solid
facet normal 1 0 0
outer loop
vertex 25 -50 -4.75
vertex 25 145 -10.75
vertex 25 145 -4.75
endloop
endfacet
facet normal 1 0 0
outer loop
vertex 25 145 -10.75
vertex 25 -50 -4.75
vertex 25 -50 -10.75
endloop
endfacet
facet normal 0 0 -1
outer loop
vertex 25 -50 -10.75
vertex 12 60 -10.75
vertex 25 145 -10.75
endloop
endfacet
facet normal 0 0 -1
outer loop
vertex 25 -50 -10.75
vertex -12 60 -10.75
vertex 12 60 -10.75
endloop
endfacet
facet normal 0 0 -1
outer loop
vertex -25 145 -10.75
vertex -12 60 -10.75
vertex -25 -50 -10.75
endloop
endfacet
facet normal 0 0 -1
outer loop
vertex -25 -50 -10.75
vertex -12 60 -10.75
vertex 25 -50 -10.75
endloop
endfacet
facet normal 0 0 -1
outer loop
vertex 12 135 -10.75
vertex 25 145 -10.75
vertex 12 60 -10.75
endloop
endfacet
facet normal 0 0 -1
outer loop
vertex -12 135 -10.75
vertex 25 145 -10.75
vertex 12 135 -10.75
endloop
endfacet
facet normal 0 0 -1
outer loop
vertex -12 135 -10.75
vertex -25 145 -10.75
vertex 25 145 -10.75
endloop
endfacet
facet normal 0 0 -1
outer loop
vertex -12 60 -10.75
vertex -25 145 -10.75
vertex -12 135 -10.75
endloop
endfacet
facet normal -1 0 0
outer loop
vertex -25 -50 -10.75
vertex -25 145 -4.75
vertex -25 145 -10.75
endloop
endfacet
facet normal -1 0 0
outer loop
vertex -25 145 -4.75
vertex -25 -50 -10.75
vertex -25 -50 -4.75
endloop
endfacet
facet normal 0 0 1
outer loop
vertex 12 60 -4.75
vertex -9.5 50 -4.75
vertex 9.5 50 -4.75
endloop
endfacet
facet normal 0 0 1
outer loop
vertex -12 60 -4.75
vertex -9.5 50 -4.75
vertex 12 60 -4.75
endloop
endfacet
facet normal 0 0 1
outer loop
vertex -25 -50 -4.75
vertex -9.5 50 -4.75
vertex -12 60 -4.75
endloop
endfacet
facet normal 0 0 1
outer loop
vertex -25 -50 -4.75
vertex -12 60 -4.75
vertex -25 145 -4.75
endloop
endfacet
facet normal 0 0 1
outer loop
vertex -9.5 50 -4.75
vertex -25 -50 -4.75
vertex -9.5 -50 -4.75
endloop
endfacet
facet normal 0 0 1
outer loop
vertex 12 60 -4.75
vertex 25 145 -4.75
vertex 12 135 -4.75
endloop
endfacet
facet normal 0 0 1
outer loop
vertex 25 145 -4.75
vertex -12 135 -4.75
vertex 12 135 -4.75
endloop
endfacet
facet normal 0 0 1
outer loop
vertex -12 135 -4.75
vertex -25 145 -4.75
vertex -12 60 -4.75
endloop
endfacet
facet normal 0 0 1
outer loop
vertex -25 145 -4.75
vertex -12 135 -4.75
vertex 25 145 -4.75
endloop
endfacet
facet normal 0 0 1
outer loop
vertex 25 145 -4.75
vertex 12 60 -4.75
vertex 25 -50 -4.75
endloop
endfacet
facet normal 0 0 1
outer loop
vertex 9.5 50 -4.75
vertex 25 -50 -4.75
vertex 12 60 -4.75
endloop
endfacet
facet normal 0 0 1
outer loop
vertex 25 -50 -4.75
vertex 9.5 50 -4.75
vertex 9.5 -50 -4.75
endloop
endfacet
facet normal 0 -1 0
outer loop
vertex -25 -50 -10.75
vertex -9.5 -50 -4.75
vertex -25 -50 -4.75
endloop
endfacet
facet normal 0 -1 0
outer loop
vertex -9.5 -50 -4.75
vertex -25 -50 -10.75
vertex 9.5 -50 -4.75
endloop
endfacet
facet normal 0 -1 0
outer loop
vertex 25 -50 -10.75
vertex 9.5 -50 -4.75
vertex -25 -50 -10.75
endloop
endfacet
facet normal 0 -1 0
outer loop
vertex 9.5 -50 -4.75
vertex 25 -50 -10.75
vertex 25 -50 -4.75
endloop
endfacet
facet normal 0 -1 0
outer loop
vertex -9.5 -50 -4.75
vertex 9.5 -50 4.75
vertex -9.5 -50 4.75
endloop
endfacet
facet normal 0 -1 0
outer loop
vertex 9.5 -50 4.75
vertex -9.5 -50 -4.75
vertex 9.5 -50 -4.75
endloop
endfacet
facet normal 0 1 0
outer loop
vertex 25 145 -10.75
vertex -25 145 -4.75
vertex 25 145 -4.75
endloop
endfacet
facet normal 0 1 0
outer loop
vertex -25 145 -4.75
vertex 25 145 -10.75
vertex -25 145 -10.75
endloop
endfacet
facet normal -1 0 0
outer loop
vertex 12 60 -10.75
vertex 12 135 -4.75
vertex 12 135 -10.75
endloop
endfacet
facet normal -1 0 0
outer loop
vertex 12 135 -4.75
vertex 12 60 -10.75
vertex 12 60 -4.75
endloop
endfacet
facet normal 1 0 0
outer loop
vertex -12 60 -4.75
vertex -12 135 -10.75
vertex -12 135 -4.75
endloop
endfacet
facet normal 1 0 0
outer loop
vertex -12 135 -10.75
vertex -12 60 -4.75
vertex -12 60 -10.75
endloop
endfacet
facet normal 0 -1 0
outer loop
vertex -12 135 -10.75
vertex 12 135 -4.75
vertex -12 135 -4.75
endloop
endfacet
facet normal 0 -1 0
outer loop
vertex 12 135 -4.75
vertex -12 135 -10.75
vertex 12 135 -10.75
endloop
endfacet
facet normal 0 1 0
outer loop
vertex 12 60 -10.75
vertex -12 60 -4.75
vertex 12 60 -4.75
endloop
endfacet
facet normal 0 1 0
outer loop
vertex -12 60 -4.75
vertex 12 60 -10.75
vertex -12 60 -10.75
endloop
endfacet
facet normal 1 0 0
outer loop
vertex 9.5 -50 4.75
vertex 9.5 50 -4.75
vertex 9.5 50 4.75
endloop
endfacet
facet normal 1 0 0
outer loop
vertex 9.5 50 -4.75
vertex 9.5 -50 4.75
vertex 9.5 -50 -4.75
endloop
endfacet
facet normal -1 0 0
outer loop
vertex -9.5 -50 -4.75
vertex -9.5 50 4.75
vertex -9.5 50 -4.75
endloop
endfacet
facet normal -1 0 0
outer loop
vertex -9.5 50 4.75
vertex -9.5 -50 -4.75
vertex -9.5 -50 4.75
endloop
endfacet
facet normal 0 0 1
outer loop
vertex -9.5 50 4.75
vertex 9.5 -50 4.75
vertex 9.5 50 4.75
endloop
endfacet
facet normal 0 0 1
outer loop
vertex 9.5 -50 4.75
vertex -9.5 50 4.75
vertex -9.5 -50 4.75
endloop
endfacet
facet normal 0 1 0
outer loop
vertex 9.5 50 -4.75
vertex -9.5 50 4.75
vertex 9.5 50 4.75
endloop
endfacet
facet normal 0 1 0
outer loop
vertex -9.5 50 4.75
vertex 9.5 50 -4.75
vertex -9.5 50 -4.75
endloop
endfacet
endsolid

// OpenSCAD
// The width (in mm) of the miter slot that the jig will rest within.
$miterSlotWidth = 19; // [12:20]

// The depth (in mm) of the miter slot that the jig will rest within.
$miterSlotDepth = 9.5; // [6:0.5:19]

// The length (in mm) of the jig that rests in the miter slot.
$miterSlotLength = 100; // [25:25:150]

// The cutout size (in mm) that the jig is intended to help create.
$jigCutoutLength = 75; // [25:10:300]

// The width of the cutout (in mm) the jig will help create
$jigCutoutWidth = 24; // [12:0.5:25]

// The width (in mm) of the entire Jig, the wider the easier it is to rest the router on.
$jigWidth = 50; // [50:25:150]

// The thickness (in mm) of the jig.
$jigThickness = 6; // [6:25]

{}

rotate([0,180,0])    
group(){
    // Miter slot piece
    color("blue")
    cube([$miterSlotWidth, $miterSlotLength, $miterSlotDepth], center = true);

    difference(){
        $oal = $miterSlotLength + $jigCutoutLength + 20;
        
        // The top part of the jig where the router will rest.
        color("green")
        translate([0,($oal-$miterSlotLength)/2,($jigThickness+$miterSlotDepth)/2])
        cube([$jigWidth, $oal, $jigThickness], center = true);
            
        // The cutout for the jig
        translate([0,$oal/2,0])
        cube([$jigCutoutWidth, $jigCutoutLength, $jigThickness*10], center = true);
    }
}
